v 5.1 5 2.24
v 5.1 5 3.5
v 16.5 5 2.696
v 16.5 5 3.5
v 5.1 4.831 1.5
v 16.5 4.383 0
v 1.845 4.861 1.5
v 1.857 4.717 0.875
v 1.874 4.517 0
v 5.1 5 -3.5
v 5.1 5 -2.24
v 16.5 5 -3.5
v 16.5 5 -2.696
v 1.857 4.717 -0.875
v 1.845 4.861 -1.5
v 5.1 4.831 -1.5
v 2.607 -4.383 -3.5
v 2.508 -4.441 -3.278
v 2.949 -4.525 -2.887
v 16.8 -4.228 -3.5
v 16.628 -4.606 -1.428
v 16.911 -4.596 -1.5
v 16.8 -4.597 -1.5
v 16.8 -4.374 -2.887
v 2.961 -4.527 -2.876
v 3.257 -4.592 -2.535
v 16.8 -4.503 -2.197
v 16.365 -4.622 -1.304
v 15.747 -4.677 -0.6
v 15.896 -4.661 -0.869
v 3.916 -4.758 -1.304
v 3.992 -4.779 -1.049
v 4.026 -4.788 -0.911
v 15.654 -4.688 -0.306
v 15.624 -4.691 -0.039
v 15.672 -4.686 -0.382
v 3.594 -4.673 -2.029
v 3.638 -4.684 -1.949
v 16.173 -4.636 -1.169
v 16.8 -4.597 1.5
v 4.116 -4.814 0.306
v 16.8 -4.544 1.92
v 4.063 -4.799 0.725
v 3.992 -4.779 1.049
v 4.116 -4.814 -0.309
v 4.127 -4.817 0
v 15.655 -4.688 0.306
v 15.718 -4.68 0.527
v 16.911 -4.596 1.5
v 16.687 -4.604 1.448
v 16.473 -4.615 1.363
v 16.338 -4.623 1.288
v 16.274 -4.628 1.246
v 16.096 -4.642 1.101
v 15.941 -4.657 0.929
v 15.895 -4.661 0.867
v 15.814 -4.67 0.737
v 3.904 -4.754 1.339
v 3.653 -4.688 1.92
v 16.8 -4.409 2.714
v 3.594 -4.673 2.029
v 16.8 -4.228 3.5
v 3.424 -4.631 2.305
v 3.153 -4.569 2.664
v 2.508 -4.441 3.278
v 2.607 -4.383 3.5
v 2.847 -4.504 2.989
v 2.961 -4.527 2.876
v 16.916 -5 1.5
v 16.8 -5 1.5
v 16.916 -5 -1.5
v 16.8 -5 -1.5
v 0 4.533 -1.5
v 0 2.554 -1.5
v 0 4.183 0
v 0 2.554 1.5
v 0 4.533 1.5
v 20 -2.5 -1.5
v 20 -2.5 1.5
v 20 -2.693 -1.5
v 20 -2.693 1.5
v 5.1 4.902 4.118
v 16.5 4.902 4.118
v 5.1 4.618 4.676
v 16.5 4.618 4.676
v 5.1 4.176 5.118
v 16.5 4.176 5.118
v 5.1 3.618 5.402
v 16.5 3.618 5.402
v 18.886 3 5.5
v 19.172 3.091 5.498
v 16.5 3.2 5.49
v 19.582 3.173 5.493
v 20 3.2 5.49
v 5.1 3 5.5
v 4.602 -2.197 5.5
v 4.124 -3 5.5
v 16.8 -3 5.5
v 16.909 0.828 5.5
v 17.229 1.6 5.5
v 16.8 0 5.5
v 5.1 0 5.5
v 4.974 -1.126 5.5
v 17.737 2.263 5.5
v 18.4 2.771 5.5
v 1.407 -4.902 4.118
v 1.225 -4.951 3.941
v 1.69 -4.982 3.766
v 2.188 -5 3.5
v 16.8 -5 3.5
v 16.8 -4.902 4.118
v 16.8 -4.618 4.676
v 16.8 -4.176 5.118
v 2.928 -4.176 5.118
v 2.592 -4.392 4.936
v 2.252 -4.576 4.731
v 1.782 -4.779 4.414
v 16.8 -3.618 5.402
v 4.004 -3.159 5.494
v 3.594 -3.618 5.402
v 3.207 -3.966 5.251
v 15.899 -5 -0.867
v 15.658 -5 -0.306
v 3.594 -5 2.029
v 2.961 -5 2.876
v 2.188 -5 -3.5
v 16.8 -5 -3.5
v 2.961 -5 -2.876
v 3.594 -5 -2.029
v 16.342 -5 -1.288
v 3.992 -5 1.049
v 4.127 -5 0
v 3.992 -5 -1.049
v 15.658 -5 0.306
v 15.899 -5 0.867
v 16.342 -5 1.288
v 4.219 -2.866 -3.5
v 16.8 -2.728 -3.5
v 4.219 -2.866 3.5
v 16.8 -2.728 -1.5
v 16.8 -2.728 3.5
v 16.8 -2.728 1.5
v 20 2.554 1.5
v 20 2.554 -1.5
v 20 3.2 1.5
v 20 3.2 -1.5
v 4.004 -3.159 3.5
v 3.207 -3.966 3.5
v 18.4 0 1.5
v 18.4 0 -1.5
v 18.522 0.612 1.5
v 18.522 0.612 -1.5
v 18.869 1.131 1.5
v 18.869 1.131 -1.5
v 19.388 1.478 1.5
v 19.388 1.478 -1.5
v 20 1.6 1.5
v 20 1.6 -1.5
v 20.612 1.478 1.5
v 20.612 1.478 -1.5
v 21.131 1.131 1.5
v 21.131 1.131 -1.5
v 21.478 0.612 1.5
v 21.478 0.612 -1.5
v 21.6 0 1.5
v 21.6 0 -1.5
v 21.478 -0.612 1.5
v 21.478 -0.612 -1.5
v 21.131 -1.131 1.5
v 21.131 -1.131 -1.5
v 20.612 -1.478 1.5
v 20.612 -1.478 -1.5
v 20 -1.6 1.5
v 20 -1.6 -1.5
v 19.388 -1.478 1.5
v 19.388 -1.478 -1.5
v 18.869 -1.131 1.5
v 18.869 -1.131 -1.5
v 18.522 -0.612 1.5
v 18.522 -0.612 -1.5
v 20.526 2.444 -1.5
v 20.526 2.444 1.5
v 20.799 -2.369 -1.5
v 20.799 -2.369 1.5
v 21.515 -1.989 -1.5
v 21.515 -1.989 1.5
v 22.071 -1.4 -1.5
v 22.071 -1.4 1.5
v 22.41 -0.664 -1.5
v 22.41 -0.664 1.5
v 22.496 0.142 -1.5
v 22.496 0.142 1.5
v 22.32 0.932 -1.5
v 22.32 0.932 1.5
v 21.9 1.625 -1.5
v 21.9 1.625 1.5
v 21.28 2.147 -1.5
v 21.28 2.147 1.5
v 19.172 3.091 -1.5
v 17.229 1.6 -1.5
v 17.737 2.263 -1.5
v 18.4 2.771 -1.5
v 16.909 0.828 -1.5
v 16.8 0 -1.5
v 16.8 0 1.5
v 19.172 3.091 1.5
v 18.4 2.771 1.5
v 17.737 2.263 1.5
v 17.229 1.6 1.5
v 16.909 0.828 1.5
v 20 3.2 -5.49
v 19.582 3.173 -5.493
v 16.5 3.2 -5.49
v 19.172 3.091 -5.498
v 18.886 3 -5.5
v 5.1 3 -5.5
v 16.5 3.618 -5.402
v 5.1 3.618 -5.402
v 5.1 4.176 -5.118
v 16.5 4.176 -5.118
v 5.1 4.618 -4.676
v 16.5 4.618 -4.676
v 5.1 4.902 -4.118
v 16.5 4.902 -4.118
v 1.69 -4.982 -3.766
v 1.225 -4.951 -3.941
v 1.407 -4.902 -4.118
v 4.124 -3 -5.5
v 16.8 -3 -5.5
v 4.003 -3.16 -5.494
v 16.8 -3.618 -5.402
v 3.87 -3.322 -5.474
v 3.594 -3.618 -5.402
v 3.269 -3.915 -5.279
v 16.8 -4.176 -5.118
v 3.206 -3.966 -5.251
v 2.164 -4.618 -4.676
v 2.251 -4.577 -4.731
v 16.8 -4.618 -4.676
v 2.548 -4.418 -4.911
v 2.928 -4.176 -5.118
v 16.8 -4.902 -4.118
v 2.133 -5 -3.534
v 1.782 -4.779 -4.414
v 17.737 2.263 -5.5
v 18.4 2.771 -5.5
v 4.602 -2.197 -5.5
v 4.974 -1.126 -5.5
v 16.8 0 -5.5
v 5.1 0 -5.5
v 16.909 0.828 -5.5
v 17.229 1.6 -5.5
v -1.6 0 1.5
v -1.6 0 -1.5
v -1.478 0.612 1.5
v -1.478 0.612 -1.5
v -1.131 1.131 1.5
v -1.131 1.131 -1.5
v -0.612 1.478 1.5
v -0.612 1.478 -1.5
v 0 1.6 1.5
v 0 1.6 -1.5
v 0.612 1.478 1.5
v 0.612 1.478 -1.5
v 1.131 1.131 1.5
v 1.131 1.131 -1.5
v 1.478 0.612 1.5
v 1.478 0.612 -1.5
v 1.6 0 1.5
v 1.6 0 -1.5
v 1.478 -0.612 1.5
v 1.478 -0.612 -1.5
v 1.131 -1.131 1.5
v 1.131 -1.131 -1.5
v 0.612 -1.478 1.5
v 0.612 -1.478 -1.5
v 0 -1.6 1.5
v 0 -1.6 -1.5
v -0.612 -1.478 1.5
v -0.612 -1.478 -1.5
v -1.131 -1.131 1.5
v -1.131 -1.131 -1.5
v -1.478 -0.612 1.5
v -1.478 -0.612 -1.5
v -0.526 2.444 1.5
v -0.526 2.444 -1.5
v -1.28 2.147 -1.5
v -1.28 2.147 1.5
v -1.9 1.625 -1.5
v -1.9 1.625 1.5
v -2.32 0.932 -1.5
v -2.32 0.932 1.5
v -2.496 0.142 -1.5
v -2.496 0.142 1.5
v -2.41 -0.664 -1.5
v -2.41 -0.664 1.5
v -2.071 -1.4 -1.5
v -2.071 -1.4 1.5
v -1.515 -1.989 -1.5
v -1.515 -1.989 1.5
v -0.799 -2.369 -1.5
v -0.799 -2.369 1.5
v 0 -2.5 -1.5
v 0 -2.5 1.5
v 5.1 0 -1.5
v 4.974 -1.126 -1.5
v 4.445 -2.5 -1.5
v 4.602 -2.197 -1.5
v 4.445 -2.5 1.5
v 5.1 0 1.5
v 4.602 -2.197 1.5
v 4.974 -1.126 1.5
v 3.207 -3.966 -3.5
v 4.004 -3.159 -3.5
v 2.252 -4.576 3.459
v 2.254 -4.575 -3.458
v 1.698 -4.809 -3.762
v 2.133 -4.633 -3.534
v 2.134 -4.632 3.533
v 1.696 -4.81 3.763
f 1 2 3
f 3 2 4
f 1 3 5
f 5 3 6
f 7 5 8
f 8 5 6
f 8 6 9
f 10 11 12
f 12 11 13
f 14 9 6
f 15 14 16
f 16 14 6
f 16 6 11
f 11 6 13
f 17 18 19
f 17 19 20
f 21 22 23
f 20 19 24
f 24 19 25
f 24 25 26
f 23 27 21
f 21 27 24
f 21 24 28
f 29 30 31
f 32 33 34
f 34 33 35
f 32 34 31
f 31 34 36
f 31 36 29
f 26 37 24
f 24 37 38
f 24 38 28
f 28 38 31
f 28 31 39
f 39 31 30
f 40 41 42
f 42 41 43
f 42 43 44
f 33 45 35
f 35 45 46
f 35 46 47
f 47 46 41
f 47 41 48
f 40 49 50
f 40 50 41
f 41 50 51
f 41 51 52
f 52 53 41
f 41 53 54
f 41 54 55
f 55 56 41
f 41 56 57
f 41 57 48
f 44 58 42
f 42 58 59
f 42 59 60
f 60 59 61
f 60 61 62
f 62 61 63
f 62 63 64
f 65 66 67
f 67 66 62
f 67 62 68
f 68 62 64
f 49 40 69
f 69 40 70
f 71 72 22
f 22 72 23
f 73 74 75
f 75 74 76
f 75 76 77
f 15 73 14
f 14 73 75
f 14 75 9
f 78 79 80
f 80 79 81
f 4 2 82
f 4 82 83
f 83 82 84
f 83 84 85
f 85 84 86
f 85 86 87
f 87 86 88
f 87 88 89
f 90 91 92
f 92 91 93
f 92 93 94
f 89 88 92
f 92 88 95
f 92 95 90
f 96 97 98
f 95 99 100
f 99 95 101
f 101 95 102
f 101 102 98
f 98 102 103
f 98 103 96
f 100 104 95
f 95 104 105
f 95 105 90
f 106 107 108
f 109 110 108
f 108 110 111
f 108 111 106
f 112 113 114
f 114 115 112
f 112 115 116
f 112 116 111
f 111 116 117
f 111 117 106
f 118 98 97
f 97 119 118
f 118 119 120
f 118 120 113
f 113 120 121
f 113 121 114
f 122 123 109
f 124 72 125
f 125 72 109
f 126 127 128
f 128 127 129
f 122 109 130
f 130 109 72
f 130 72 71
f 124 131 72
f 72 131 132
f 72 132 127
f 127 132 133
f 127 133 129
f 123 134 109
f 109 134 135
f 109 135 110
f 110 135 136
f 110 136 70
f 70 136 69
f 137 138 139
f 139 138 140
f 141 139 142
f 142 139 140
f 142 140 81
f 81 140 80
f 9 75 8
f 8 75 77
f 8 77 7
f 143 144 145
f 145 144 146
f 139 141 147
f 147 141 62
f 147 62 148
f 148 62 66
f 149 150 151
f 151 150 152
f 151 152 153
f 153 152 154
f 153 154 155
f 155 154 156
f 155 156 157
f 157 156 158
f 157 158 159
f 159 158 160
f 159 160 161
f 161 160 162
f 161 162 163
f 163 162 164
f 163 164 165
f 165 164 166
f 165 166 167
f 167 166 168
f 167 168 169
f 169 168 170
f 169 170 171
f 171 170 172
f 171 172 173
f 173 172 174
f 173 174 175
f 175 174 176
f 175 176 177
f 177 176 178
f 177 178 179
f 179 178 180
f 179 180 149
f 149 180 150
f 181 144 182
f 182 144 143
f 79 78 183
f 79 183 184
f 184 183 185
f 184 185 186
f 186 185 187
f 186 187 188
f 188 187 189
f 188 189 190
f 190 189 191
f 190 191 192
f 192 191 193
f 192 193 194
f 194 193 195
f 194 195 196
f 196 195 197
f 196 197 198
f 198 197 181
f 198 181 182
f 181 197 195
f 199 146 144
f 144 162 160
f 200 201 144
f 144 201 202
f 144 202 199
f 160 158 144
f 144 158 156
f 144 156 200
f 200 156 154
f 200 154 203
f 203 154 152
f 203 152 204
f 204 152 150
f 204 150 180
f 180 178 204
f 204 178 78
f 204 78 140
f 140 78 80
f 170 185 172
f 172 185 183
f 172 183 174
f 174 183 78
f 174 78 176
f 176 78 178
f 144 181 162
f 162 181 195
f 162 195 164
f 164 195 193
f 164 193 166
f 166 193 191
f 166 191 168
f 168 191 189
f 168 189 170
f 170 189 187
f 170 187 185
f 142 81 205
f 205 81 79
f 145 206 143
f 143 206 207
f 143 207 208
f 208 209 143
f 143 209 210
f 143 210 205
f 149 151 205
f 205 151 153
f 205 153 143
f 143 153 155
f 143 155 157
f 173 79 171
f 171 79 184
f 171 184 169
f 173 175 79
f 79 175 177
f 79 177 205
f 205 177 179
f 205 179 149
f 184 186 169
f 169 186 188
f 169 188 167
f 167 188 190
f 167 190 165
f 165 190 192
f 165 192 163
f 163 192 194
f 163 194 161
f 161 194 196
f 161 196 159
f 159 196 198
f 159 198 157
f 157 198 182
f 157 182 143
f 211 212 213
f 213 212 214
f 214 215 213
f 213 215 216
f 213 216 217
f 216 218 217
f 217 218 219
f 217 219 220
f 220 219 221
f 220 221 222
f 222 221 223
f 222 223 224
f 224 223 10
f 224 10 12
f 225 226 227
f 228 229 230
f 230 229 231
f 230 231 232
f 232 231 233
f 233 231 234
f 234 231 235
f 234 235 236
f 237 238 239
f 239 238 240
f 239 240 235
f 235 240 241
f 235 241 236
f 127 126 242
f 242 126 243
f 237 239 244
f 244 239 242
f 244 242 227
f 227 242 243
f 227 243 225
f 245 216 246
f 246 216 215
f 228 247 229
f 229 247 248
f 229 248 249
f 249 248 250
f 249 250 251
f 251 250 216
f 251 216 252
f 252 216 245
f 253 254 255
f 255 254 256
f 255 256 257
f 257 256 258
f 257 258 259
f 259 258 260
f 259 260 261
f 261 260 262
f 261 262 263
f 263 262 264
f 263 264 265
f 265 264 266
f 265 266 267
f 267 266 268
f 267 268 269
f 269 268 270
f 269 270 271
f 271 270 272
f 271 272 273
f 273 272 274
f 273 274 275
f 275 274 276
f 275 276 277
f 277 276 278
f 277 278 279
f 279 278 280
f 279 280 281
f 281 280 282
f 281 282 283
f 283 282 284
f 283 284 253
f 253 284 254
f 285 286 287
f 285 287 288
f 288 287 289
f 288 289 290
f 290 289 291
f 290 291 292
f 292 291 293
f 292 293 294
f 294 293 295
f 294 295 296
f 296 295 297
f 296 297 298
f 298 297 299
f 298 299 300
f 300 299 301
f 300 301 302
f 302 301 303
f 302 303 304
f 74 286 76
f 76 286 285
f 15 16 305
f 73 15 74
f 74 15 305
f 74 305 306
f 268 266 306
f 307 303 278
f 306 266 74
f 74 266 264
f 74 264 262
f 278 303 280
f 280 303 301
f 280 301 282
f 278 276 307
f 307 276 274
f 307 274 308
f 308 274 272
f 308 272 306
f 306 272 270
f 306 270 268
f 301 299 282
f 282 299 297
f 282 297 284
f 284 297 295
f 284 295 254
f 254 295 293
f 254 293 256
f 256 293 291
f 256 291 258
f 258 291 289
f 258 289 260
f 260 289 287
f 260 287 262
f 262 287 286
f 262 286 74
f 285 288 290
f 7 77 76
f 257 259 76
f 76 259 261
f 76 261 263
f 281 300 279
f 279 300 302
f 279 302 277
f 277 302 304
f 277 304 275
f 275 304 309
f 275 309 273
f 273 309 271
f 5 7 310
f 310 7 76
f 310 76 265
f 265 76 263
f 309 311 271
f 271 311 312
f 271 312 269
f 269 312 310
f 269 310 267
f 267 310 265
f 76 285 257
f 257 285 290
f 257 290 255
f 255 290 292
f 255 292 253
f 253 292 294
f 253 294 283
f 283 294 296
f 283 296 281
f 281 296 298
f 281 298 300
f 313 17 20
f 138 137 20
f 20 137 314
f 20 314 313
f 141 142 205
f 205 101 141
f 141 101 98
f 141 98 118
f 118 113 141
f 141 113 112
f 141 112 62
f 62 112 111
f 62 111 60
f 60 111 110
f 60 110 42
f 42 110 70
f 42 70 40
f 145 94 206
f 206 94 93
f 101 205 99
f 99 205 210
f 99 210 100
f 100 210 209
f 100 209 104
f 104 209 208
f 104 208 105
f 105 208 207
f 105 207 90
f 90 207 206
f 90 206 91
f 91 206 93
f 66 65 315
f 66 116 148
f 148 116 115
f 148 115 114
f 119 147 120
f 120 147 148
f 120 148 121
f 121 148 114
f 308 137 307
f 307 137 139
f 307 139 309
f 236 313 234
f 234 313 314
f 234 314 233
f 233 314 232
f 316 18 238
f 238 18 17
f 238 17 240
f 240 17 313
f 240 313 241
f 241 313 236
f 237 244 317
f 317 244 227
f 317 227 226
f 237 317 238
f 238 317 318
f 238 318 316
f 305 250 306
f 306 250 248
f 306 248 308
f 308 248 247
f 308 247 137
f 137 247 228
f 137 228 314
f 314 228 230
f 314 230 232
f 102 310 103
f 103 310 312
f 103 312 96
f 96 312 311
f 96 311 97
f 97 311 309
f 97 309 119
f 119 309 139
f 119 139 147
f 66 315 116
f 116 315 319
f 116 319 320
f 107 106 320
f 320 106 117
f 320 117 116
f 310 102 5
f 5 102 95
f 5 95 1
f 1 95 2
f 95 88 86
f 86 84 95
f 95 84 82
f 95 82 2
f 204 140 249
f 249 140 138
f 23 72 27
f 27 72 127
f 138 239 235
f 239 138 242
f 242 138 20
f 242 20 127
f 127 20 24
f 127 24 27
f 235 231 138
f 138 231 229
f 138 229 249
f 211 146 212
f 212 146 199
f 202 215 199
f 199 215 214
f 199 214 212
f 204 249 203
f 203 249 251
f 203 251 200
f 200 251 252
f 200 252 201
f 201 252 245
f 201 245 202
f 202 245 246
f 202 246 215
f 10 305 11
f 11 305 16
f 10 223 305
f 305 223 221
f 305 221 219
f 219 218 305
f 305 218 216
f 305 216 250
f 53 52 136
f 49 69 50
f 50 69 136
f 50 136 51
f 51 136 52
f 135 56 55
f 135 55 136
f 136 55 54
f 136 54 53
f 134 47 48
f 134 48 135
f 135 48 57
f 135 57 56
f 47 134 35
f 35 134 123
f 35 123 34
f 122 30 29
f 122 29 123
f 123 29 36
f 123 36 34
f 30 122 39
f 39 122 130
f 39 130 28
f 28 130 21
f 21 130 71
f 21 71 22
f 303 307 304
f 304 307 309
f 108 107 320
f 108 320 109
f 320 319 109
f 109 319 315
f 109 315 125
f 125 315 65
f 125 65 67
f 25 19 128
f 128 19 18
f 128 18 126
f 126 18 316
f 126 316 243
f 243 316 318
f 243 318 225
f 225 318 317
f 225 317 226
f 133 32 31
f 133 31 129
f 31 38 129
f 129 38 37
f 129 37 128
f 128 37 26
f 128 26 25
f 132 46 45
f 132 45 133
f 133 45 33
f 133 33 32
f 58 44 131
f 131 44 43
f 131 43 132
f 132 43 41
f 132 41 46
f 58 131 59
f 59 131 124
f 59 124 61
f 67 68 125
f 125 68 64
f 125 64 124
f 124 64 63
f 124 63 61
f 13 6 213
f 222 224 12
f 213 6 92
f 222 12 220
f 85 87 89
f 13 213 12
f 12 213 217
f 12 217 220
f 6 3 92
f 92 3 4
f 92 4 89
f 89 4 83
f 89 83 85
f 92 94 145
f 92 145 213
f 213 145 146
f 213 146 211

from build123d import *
from build123d.topology import SkipClean

# Parameters (mm, degrees)
SKETCH1_R               = 1.6
BOSS_EXTRUDE1_DEPTH     = 1.5
SKETCH2_W               = 18
SKETCH2_H               = 5
BOSS_EXTRUDE3_DEPTH     = 20
CUT_EXTRUDE3_DEPTH      = 4
CUT_EXTRUDE1_DEPTH      = 4
CUT_EXTRUDE4_DEPTH      = 6
CUT_EXTRUDE5_DEPTH      = 25.088378991
CUT_EXTRUDE5_DEPTH_BACK = 25.088378991
SKETCH11_R              = 1.6
CUT_EXTRUDE6_DEPTH      = 10
SKETCH13_R              = 4.127392351
CUT_EXTRUDE7_DEPTH      = 2.5
CUT_EXTRUDE8_START      = -3.5
CUT_EXTRUDE8_DEPTH      = 3.5


with BuildPart() as part:
    # Sketch1 → Boss-Extrude1 (new, symmetric)
    with BuildSketch(Plane.XY):
        with BuildLine():
            Line((0, -2.5), (20, -2.5))
            ThreePointArc((20, -2.5), (22.485953156, -0.264644865), (20.526315789, 2.443970476))
            ThreePointArc((20.526315789, 2.443970476), (10, 3.564560947), (-0.526315789, 2.443970476))
            ThreePointArc((-0.526315789, 2.443970476), (-2.485953156, -0.264644865), (0, -2.5))
        make_face()
        Circle(SKETCH1_R, mode=Mode.SUBTRACT)
        with Locations((20, 0)):
            Circle(SKETCH1_R, mode=Mode.SUBTRACT)
    extrude(amount=BOSS_EXTRUDE1_DEPTH, both=True)

    # Sketch2 → Revolve1 (revolve)
    with BuildSketch(Plane(origin=(0, 0, 0), x_dir=(1, 0, 0), z_dir=(0, 1, 0))):
        with Locations((11, -2.5)):
            Rectangle(SKETCH2_W, SKETCH2_H)
    revolve(axis=Axis((2, 0, 0), (1, 0, 0)))

    # Sketch9 → Boss-Extrude3 (add)
    with BuildSketch(Plane(origin=(0, 0, 0), x_dir=(0, 0, -1), z_dir=(1, 0, 0))):
        with BuildLine():
            Line((-3.5, -5), (3.5, -5))
            ThreePointArc((3.5, -5), (4.914213562, -4.414213562), (5.5, -3))
            Line((5.5, -3), (5.5, 3))
            ThreePointArc((5.5, 3), (4.914213562, 4.414213562), (3.5, 5))
            Line((3.5, 5), (-3.5, 5))
            ThreePointArc((-3.5, 5), (-4.914213562, 4.414213562), (-5.5, 3))
            Line((-5.5, 3), (-5.5, -3))
            ThreePointArc((-5.5, -3), (-4.914213562, -4.414213562), (-3.5, -5))
        make_face()
    extrude(amount=BOSS_EXTRUDE3_DEPTH)

    # Cut-Sweep1: sweep along a path in Sketch4
    with BuildLine(Plane.XY) as cut_sweep1_path:
        Line((24.863277649, 2.710997103), (2, 2.920411664))
        ThreePointArc((2, 2.920411664), (0.733779453, 2.698430699), (-0.526315789, 2.443970476))
        Line((-0.526315789, 2.443970476), (-4.067756882, 1.923712717))
    # Sketch3 → Cut-Sweep1 (sweep, cut)
    with BuildSketch(Plane(origin=(0, 0, 0), x_dir=(0, 0, -1), z_dir=(1, 0, 0))):
        Polygon((3.5, 5), (0, 4.182726474), (-3.5, 5), (-3.5, 6.035180102), (3.681581058, 6.035180102), align=None)
    sweep(path=cut_sweep1_path.line, transition=Transition.RIGHT, mode=Mode.SUBTRACT)

    # Cut-Sweep3: sweep along a path in Sketch7
    with BuildLine(Plane.XY) as cut_sweep3_path:
        Line((0, -2.91172129), (20, -2.693253741))
    # Sketch6 → Cut-Sweep3 (sweep, cut)
    with BuildSketch(Plane(origin=(20, 0, 0), x_dir=(0, 0, -1), z_dir=(1, 0, 0))):
        with BuildLine():
            Line((3.5, -2.693253741), (3.5, -4.193253741))
            ThreePointArc((3.5, -4.193253741), (0, -4.643536391), (-3.5, -4.193253741))
            Line((-3.5, -4.193253741), (-3.5, -2.693253741))
            Line((-3.5, -2.693253741), (3.5, -2.693253741))
        make_face()
    sweep(path=cut_sweep3_path.line, mode=Mode.SUBTRACT)

    # Sketch8 → Cut-Extrude3 (cut)
    with BuildSketch(Plane.XY.offset(1.5)):
        with BuildLine():
            Line((16.8, 0), (16.8, -2))
            Line((16.8, -2), (16.8, -5))
            Line((16.8, -5), (20, -5))
            Line((20, -5), (20, -3.2))
            ThreePointArc((20, -3.2), (22.2627417, 2.2627417), (16.8, 0))
        make_face()
    cut_extrude3 = extrude(amount=CUT_EXTRUDE3_DEPTH, mode=Mode.SUBTRACT)

    # Sketch5 → Cut-Extrude1 (cut)
    with BuildSketch(Plane.XY.offset(1.5)):
        with BuildLine():
            Line((5.1, 0), (5.1, 5.1))
            Line((5.1, 5.1), (0, 5.1))
            ThreePointArc((0, 5.1), (-3.606244584, -3.606244584), (5.1, 0))
        make_face()
    cut_extrude1 = extrude(amount=CUT_EXTRUDE1_DEPTH, mode=Mode.SUBTRACT)

    # Mirror1: Cut-Extrude3, Cut-Extrude1 across plane
    add(cut_extrude3.mirror(Plane.XY), mode=Mode.SUBTRACT)
    add(cut_extrude1.mirror(Plane.XY), mode=Mode.SUBTRACT)

    # Sketch10 → Cut-Extrude4 (cut)
    with BuildSketch(Plane(origin=(0.031802036, -2.911373904, 0), x_dir=(0.9999403452508379, 0.01092272583357663, 0), z_dir=(0.01092272583357663, -0.9999403452508379, 0))):
        with BuildLine():
            Line((17.174273437, 1.517261574), (23.592478812, 1.517261574))
            Line((23.592478812, 1.517261574), (23.592478812, -1.517261574))
            Line((23.592478812, -1.517261574), (17.174357812, -1.517261574))
            Line((17.174357812, -1.517261574), (17.08845436, -1.517261574))
            ThreePointArc((17.08845436, -1.517261574), (15.571192786, 0), (17.08845436, 1.517261574))
            Line((17.08845436, 1.517261574), (17.174273437, 1.517261574))
        make_face()
    extrude(amount=CUT_EXTRUDE4_DEPTH, mode=Mode.SUBTRACT)

    # Sketch11 → Cut-Extrude5 (cut, two sides: drawn at the far end of the back side and taken through both)
    with SkipClean():  # the faces are left unmerged after this step: merging them gives an invalid solid
        with BuildSketch(Plane.XY.offset(1.5).offset(-CUT_EXTRUDE5_DEPTH_BACK)):
            with Locations((20, 0)):
                Circle(SKETCH11_R)
            Circle(SKETCH11_R)
        extrude(amount=CUT_EXTRUDE5_DEPTH + CUT_EXTRUDE5_DEPTH_BACK, mode=Mode.SUBTRACT)

    # Sketch12 → Cut-Extrude6 (cut)
    with SkipClean():  # the faces are left unmerged after this step: merging them gives an invalid solid
        with BuildSketch(Plane.XY.offset(1.5)):
            with BuildLine():
                Line((2, -2.5), (4.445222154, -2.5))
                ThreePointArc((4.445222154, -2.5), (2.659498662, -4.35167403), (0.197141337, -5.09618831))
                Line((0.197141337, -5.09618831), (-0.979949821, -5.09618831))
                Line((-0.979949821, -5.09618831), (-0.979949821, -2.5))
                Line((-0.979949821, -2.5), (2, -2.5))
            make_face()
        extrude(amount=-CUT_EXTRUDE6_DEPTH, mode=Mode.SUBTRACT)

    # Sketch13 → Cut-Extrude7 (cut)
    with BuildSketch(Plane.XZ.offset(5)):
        Circle(SKETCH13_R)
    extrude(amount=-CUT_EXTRUDE7_DEPTH, mode=Mode.SUBTRACT)

    # Sketch15 → Cut-Extrude8 (cut)
    with BuildSketch(Plane(origin=(20, 0, 0), x_dir=(0, 0, -1), z_dir=(1, 0, 0)).offset(CUT_EXTRUDE8_START)):
        with BuildLine():
            Line((-2.836208081, 5), (2.836208081, 5))
            Line((2.836208081, 5), (3.5, 5))
            ThreePointArc((3.5, 5), (4.841640786, 4.483239697), (5.489974874, 3.2))
            Line((5.489974874, 3.2), (1.5, 3.2))
            Line((1.5, 3.2), (-1.5, 3.2))
            Line((-1.5, 3.2), (-5.489974874, 3.2))
            ThreePointArc((-5.489974874, 3.2), (-4.841640786, 4.483239697), (-3.5, 5))
            Line((-3.5, 5), (-2.836208081, 5))
        make_face()
    extrude(amount=CUT_EXTRUDE8_DEPTH, mode=Mode.SUBTRACT)


solid = part.part
